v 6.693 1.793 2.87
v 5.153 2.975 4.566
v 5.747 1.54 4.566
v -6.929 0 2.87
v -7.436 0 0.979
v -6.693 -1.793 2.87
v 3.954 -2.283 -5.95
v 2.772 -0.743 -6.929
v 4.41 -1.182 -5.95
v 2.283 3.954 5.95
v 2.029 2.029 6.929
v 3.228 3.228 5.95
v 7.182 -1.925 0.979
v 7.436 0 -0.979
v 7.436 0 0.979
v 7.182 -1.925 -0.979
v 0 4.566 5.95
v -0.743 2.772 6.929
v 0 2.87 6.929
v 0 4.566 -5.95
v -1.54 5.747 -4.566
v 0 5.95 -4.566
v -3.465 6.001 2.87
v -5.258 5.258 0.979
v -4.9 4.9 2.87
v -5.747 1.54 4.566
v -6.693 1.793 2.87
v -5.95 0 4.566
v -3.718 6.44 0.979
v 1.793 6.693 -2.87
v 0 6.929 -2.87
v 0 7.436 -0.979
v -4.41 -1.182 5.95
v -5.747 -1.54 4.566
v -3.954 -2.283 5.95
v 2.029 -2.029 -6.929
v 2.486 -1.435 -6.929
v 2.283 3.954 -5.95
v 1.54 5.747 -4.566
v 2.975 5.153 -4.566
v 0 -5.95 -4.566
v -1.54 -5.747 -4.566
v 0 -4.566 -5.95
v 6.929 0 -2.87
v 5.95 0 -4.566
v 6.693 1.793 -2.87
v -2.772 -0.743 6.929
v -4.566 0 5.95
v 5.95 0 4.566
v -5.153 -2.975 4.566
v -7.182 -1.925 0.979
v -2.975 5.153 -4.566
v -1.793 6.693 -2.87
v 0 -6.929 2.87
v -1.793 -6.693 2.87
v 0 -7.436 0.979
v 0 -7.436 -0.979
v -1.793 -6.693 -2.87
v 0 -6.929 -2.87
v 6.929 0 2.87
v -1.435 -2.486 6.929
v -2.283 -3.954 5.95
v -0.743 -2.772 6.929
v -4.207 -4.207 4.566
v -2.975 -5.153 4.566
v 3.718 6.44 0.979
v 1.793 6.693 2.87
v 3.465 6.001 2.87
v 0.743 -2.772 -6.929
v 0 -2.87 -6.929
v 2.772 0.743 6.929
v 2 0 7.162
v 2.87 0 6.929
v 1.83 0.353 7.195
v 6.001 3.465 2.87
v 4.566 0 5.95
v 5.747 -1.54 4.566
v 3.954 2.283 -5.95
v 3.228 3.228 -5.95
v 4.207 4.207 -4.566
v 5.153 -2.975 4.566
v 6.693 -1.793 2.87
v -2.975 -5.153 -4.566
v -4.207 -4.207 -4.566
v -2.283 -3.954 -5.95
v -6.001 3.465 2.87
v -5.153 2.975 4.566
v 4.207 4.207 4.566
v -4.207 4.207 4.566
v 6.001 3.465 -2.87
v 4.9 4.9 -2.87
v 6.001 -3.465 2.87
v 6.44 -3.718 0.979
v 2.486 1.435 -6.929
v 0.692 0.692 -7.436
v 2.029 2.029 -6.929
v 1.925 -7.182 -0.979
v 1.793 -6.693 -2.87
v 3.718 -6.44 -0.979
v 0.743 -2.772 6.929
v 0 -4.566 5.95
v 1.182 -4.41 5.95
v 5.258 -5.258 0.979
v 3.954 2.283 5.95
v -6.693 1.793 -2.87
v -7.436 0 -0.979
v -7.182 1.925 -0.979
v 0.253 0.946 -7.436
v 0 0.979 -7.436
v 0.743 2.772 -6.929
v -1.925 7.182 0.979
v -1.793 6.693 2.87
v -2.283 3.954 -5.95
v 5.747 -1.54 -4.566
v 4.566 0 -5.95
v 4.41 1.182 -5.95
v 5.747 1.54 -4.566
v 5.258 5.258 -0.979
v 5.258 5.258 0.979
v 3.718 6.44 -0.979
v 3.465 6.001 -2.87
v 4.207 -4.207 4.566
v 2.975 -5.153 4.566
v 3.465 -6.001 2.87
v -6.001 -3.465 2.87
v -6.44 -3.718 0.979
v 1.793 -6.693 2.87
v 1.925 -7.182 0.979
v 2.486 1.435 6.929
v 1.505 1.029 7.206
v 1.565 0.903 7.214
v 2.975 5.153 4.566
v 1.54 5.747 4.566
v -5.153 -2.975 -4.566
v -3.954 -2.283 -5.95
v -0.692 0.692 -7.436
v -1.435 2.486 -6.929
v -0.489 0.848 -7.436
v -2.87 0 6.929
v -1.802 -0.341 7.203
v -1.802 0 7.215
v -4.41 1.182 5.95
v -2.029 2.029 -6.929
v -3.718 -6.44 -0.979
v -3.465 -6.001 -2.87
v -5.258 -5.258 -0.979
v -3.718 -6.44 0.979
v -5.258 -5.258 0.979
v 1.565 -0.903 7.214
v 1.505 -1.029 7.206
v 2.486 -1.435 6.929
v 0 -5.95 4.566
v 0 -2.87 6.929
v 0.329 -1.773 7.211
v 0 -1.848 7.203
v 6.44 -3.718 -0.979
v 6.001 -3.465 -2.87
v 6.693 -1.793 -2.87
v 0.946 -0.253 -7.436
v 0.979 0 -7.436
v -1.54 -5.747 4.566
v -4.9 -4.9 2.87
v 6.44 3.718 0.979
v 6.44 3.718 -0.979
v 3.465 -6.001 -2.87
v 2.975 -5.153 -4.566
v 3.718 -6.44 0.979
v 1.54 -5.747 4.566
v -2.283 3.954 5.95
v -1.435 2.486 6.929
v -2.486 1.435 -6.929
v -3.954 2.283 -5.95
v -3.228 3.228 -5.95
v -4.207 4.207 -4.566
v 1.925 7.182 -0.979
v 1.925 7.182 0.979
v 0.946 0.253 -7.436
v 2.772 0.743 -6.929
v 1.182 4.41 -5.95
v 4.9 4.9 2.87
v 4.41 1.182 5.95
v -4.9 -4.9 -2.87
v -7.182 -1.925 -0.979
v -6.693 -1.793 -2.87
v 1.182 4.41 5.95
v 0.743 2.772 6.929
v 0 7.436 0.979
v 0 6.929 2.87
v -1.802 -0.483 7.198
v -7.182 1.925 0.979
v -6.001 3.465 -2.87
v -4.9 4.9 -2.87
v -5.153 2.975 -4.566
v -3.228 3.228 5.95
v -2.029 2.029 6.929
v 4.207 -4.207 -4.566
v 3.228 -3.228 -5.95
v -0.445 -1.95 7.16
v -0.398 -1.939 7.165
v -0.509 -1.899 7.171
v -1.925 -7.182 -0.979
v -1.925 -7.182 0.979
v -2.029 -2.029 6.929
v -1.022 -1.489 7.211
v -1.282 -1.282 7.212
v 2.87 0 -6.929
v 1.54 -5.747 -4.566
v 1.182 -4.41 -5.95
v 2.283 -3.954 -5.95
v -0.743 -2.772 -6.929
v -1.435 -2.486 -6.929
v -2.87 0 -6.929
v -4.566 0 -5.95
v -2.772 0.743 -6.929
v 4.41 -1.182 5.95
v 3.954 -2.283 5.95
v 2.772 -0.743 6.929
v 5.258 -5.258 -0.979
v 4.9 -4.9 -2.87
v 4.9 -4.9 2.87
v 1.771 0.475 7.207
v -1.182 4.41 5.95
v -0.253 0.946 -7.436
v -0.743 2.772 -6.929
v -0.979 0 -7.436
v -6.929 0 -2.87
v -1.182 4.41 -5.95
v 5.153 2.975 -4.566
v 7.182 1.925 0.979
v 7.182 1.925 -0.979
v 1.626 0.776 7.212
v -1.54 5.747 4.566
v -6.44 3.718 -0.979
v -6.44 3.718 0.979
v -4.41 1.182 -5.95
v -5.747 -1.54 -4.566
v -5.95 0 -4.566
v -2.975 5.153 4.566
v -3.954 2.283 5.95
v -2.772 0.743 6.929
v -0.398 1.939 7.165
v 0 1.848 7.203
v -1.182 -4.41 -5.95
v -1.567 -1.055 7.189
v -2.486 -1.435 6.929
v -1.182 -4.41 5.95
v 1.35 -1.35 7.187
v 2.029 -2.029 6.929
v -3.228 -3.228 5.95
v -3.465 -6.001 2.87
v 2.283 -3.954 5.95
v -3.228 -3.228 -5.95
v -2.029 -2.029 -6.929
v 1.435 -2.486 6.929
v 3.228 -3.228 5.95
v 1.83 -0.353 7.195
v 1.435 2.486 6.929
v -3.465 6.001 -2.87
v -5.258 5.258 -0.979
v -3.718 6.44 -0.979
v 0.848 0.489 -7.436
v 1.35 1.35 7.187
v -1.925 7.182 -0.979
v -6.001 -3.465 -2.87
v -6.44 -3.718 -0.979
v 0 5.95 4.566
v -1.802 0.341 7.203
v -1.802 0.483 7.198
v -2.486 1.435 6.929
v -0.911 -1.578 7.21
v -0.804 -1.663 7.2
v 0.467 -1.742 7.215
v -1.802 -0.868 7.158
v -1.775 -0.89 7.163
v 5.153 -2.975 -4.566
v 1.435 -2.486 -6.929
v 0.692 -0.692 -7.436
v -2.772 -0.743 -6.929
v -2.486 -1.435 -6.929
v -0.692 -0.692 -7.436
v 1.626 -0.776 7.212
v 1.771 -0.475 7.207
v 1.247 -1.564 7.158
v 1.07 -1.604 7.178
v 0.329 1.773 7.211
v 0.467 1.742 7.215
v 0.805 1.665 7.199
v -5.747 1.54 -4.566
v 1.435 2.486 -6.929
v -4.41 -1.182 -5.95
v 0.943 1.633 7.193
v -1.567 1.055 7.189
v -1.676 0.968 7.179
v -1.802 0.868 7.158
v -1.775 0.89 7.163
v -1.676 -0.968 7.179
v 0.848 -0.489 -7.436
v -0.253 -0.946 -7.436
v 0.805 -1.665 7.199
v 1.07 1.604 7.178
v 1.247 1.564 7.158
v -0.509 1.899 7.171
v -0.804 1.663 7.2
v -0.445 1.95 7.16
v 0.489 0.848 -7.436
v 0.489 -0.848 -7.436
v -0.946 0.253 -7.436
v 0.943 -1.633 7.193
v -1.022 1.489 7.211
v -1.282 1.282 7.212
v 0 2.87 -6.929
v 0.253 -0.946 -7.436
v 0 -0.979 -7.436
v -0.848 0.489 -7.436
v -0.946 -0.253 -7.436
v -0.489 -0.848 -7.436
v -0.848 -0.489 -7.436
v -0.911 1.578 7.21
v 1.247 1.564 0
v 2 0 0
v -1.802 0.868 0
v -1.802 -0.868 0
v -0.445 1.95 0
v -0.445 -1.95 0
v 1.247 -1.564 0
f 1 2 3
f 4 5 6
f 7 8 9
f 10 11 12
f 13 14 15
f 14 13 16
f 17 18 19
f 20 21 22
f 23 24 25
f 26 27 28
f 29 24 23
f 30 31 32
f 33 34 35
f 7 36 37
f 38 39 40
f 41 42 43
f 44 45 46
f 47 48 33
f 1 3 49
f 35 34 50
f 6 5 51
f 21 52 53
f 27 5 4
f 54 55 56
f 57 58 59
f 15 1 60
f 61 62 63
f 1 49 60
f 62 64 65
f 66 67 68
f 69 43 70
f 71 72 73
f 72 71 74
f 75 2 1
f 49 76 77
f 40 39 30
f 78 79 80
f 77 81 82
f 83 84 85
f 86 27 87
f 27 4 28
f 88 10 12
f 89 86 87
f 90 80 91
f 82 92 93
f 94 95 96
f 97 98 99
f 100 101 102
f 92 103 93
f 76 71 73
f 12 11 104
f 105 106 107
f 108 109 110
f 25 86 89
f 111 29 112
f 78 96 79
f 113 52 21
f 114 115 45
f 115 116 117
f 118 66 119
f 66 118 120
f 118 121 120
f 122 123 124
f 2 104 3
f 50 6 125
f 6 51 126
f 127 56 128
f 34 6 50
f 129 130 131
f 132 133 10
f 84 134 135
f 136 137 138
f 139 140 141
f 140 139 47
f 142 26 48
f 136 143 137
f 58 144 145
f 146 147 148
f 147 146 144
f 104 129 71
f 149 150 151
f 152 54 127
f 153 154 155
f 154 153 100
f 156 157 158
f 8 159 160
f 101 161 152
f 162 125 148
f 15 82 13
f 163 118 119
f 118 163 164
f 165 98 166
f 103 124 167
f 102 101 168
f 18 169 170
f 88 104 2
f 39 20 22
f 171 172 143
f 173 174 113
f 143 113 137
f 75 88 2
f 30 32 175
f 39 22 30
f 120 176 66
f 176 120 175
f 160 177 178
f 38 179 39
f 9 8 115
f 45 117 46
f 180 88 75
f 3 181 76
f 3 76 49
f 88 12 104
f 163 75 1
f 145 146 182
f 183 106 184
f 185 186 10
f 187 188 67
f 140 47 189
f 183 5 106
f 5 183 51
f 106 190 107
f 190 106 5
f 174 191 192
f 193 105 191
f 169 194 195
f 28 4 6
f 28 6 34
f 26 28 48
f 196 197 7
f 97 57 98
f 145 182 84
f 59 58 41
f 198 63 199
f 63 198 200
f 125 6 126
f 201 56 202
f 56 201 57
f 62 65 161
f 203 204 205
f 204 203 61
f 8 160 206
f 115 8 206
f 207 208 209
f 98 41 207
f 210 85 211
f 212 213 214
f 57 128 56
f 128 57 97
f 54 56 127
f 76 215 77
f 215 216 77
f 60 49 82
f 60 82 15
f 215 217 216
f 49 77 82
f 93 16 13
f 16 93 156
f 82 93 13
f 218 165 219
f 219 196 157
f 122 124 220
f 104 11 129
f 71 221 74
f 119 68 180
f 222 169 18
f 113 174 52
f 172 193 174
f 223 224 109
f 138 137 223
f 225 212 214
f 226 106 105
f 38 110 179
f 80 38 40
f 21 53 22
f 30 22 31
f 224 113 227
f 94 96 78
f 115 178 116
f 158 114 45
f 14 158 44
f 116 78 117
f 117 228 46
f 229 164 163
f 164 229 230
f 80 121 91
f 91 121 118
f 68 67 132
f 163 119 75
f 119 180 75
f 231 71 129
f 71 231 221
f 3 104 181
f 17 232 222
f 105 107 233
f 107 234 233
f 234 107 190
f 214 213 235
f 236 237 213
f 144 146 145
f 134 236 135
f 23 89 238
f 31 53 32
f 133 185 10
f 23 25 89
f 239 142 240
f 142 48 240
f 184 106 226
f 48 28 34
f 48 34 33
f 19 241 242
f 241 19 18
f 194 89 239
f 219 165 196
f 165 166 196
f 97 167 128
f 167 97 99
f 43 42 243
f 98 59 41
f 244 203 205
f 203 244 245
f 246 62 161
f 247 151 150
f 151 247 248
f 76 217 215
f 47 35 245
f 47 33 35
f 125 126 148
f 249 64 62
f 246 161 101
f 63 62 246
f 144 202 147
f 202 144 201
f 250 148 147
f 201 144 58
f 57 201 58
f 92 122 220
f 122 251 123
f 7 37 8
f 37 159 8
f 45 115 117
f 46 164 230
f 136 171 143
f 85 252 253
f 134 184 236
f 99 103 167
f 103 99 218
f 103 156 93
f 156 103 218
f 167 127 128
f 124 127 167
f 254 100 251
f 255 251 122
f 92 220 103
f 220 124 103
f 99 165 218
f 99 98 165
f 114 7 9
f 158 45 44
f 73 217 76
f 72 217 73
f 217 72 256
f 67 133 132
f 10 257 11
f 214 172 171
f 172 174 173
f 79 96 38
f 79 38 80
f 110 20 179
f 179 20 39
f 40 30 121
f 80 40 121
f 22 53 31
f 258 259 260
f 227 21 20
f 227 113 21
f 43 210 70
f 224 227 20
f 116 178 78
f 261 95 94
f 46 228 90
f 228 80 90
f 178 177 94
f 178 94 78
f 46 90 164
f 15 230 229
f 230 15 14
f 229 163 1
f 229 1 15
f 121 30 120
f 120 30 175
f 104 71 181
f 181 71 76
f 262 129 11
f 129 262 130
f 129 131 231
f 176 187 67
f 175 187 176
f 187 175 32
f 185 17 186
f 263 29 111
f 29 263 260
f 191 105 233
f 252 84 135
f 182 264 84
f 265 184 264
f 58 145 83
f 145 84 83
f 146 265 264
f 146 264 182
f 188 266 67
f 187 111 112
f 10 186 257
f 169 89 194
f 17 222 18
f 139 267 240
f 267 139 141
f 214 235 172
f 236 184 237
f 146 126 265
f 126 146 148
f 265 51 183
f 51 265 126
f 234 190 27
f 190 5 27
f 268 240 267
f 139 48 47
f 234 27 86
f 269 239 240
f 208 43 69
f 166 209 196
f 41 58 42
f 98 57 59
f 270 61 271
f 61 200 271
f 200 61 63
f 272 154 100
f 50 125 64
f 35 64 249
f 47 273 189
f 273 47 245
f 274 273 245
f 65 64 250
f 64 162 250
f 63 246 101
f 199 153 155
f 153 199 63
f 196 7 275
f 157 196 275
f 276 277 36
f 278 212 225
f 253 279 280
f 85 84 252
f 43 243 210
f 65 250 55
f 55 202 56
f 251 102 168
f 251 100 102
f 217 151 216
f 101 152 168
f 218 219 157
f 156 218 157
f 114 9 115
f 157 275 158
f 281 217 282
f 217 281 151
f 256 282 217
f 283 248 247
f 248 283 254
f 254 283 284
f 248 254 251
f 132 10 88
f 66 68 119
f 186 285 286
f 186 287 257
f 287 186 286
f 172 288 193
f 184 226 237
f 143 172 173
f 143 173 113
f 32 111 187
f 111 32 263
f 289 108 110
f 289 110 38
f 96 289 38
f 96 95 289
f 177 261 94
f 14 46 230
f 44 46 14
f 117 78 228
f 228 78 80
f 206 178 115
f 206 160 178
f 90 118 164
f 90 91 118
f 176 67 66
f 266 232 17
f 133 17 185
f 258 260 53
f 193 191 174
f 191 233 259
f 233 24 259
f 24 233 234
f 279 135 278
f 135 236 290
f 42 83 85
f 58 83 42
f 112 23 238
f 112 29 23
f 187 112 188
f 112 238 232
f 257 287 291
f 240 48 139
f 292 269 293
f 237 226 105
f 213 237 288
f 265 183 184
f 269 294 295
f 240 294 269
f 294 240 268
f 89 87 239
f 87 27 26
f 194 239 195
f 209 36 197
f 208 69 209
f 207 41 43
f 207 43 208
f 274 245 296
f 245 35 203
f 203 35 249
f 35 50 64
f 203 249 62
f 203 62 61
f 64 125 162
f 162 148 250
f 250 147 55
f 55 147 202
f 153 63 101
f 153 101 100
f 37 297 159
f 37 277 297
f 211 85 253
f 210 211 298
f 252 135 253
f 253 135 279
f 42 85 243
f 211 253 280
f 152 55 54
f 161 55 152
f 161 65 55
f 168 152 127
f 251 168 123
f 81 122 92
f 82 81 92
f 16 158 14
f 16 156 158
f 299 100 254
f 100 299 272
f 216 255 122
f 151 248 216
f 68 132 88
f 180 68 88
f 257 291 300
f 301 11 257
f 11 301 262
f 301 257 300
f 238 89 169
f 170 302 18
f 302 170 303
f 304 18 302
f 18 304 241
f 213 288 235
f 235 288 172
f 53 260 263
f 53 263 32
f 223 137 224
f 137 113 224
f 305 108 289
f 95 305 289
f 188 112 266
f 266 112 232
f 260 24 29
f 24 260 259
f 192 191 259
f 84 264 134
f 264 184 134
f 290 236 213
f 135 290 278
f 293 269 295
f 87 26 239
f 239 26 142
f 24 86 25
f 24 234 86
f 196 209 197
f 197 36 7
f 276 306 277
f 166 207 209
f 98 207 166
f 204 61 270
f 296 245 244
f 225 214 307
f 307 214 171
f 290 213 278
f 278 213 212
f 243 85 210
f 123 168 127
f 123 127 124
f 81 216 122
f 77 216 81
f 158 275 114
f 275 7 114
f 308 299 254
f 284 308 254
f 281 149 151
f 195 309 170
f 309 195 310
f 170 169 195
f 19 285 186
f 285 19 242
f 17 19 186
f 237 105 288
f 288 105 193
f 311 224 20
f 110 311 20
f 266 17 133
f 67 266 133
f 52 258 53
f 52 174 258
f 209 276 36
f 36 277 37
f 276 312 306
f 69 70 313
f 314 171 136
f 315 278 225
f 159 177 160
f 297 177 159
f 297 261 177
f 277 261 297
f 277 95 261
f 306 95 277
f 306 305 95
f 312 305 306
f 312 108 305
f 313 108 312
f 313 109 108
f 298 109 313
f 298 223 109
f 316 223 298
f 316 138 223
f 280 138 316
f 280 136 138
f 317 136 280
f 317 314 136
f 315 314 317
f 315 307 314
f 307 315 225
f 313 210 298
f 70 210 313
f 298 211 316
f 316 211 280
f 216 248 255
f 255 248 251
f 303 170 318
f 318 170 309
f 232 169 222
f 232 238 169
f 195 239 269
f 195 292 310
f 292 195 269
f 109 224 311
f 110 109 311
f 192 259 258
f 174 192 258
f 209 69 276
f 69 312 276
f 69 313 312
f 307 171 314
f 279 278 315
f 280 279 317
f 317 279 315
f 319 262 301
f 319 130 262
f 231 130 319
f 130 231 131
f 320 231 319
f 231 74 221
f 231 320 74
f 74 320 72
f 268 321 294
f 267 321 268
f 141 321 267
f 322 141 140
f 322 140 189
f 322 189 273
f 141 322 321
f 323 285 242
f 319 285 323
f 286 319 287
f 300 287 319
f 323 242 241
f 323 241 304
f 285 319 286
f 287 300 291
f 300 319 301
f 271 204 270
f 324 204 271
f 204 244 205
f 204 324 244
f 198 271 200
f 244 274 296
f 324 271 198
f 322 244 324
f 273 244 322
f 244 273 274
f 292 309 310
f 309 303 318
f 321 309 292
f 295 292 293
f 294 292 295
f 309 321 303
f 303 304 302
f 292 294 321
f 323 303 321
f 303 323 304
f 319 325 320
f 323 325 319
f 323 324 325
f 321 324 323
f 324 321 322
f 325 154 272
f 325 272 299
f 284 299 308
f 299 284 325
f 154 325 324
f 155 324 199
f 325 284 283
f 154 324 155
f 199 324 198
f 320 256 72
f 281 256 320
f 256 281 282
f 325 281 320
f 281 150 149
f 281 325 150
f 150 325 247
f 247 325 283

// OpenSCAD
threadDiameter = 4;
knobDiameter = 15;

difference() {
    sphere(r=knobDiameter/2);
    cylinder(r=threadDiameter / 2, knobDiameter*0.75);
}
